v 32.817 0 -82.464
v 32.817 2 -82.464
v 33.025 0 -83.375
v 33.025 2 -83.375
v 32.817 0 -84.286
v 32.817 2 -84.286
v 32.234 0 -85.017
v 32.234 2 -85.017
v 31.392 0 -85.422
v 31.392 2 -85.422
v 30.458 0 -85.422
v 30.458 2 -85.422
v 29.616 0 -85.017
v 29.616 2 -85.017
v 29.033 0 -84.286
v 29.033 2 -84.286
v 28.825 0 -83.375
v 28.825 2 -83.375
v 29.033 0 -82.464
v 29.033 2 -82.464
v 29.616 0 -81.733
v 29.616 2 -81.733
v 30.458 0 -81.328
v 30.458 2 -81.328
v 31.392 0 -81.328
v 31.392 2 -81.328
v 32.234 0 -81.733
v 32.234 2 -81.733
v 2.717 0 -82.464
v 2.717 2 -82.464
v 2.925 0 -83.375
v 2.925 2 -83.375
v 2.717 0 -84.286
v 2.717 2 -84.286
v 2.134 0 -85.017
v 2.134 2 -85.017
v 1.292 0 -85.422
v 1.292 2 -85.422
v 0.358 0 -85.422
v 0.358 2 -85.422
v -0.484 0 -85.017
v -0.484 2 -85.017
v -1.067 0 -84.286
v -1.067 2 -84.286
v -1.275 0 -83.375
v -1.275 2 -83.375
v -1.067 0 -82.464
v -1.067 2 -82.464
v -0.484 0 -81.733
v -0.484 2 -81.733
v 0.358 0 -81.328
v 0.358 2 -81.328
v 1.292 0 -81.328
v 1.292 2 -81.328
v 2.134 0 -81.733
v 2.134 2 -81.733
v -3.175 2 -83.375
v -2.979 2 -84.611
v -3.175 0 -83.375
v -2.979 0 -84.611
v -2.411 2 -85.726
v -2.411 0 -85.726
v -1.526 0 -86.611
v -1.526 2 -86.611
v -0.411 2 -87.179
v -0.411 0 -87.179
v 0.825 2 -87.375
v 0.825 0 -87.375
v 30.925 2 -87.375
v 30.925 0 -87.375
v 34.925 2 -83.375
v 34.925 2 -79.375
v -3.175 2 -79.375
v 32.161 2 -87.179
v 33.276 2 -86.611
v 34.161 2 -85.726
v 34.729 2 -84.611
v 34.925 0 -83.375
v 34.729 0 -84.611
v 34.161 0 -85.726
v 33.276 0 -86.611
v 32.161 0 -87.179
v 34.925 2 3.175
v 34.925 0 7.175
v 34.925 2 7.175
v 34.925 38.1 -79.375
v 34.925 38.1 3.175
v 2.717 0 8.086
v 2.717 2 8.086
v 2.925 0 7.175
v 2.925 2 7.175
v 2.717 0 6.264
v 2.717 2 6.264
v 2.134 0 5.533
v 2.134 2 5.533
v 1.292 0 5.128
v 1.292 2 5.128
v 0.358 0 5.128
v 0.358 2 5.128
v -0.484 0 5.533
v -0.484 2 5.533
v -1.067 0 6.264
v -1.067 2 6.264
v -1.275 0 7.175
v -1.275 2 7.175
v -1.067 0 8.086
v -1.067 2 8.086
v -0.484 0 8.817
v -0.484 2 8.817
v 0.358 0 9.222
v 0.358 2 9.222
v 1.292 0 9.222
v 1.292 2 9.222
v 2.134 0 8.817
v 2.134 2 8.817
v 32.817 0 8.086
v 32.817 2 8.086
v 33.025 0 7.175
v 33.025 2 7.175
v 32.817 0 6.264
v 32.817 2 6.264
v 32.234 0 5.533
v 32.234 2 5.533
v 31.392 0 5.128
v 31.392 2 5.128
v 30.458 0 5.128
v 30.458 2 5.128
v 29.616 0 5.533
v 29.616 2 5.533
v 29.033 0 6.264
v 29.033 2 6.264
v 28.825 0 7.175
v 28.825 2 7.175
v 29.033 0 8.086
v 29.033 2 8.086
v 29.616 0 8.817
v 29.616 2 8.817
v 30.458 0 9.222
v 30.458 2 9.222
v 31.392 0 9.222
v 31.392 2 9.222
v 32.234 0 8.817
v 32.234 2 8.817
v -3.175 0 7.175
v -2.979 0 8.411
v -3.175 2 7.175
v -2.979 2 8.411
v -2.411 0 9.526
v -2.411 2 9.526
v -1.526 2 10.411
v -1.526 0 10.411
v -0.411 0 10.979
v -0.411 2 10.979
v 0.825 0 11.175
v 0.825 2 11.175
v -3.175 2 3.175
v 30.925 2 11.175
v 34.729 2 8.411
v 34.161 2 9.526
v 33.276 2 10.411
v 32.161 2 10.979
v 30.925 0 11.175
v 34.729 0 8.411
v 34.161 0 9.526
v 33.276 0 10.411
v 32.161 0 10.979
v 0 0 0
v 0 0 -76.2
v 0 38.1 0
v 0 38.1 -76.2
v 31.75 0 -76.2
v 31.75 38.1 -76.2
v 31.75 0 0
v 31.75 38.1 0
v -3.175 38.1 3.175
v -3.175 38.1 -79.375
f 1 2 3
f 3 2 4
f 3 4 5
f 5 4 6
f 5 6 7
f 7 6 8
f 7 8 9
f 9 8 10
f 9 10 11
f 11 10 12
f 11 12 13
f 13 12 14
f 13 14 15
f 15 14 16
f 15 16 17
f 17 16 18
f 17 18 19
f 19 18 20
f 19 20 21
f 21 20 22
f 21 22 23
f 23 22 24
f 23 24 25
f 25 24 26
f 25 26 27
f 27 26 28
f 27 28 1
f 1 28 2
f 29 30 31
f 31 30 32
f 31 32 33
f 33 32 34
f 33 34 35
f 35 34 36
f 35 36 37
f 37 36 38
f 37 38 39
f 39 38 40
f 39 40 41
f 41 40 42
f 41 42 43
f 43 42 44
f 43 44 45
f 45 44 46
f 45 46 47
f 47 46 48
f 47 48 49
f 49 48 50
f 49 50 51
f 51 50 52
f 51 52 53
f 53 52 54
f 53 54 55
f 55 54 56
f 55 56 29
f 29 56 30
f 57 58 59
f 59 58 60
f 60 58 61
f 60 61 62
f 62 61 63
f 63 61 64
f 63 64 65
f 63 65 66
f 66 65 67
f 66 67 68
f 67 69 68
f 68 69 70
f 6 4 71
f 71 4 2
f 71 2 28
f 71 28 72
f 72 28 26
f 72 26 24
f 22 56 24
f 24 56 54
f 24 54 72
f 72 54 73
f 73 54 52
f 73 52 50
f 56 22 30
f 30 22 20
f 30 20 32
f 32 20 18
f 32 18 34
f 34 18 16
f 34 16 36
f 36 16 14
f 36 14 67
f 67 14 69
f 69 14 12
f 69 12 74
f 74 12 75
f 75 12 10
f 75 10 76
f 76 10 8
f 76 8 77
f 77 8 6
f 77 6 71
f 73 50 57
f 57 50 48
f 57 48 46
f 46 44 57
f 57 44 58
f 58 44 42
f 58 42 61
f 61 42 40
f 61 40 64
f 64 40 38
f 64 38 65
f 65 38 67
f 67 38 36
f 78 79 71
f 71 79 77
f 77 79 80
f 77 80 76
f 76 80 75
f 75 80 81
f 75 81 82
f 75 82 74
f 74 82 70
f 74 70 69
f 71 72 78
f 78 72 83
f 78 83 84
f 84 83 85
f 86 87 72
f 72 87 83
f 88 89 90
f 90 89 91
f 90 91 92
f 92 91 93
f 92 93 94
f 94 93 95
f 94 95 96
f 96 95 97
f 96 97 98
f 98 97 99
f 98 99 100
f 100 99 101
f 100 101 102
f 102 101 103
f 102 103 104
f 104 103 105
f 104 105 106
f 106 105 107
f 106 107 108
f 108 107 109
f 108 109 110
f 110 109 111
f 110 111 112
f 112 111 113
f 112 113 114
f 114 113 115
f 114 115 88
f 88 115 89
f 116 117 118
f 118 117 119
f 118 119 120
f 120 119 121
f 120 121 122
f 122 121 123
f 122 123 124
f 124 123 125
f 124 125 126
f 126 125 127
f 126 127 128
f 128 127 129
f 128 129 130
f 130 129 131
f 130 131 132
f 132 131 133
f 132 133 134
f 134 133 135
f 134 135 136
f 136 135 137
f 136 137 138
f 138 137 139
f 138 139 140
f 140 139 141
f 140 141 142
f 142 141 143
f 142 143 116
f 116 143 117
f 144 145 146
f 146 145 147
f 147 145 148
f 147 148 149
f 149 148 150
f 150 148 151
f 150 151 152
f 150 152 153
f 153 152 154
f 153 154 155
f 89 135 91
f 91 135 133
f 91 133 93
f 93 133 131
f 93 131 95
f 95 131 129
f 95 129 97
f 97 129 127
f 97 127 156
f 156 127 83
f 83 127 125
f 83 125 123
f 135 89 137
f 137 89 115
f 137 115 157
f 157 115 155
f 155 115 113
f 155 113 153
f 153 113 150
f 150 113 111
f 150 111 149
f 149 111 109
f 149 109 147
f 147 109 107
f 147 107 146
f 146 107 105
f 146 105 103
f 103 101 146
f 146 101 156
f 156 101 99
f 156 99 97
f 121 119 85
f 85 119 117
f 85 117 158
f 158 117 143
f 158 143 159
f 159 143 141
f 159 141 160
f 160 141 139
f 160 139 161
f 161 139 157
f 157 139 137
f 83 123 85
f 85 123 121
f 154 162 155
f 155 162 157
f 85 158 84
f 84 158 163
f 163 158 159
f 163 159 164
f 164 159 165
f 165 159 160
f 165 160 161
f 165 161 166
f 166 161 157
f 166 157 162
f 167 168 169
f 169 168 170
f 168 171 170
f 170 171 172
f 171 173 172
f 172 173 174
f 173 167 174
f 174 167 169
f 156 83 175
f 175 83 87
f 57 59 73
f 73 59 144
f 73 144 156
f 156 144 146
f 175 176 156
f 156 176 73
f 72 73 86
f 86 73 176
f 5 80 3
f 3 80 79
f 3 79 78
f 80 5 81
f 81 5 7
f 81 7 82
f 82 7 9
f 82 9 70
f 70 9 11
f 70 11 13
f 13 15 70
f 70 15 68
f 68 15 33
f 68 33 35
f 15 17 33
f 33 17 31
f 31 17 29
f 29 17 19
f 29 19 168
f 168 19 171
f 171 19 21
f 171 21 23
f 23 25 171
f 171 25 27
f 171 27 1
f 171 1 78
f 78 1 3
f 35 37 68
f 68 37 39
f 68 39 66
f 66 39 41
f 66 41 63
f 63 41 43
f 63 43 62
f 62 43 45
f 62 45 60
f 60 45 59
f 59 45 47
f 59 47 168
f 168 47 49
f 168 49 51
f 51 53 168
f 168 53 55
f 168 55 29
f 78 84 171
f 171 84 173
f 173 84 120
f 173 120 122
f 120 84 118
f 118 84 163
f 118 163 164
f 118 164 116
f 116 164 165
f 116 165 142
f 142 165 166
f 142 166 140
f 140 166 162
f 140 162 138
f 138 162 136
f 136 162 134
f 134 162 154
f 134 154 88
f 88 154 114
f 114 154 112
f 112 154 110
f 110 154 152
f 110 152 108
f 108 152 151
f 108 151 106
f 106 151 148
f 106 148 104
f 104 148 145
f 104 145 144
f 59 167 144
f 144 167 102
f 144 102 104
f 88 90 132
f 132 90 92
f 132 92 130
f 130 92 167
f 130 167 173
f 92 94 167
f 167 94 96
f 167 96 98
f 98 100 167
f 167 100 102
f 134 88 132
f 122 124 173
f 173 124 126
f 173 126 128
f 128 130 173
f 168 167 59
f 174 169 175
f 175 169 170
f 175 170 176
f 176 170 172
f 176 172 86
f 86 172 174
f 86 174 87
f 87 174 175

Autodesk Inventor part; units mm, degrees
ref_plane "YZ Plane" through (0, 0, 0) normal (1, 0, 0) x (0, 1, 0)
ref_plane "XZ Plane" through (0, 0, 0) normal (0, 1, 0) x (-1, 0, 0)
ref_plane "XY Plane" through (0, 0, 0) normal (0, 0, 1) x (1, 0, 0)
sketch "Sketch1" plane through (0, 0, 0) normal (0, 1, 0) x (-1, 0, 0)
  line L0 (0, 0) -> (-31.75, 0)
  line L1 (-31.75, 0) -> (-31.75, -76.2)
  line L2 (-31.75, -76.2) -> (0, -76.2)
  line L3 (0, -76.2) -> (0, 0)
  line L4 (-34.925, -79.375) -> (-34.925, 3.175)
  line L5 (-34.925, 3.175) -> (3.175, 3.175)
  line L6 (3.175, 3.175) -> (3.175, -79.375)
  line L7 (3.175, -79.375) -> (-34.925, -79.375)
  dimension "d0" = 31.75
  dimension "d1" = 76.2
  dimension "d2" = 3.175
extrude "Extrusion1" add sketch "Sketch1" along normal blind 38.1
sketch "Sketch2" plane through (-3.175, 0, 3.175) normal (0, 0, 1) x (1, 0, 0)
  line L0 (38.1, 0) -> (38.1, 38.1) projected
  line L1 (0, 0) -> (38.1, 0)
  line L2 (38.1, 0) -> (38.1, 2)
  line L3 (38.1, 2) -> (0, 2)
  line L4 (0, 2) -> (0, 0)
  point P0 (3.175, 0)
  dimension "d5" = 2
extrude "Extrusion2" add sketch "Sketch2" along normal blind 8
fillet "Fillet1" radius 4 2 edges at (34.925, 1, 11.175) (-3.175, 1, 11.175)
sketch "Sketch3" plane through (-3.175, 2, 3.175) normal (0, 1, 0) x (1, 0, 0)
  arc A0 (0, -4) -> (4, -8) centre (4, -4) ccw projected
  circle A1 centre (4, -4) radius 2.1
  arc A2 (34.1, -8) -> (38.1, -4) centre (34.1, -4) ccw projected
  circle A3 centre (34.1, -4) radius 2.1
  point P0 (3.175, 3.175)
  dimension "d9" = 4.2
  dimension "d10" = 4.2
extrude "Extrusion3" cut sketch "Sketch3" against normal blind 8
sketch "Sketch4" plane through (34.925, 0, -79.375) normal (0, 0, -1) x (-1, 0, 0)
  line L0 (38.1, 2) -> (38.1, 0) projected
  line L1 (0, 0) -> (38.1, 0)
  line L2 (38.1, 0) -> (38.1, 2)
  line L3 (38.1, 2) -> (0, 2)
  line L4 (0, 2) -> (0, 0)
  point P0 (34.925, 0)
  dimension "d13" = 2
extrude "Extrusion4" add sketch "Sketch4" along normal blind 8
fillet "Fillet2" radius 4 2 edges at (34.925, 1, -87.375) (-3.175, 1, -87.375)
sketch "Sketch5" plane through (-3.175, 2, -79.375) normal (0, 1, 0) x (1, 0, 0)
  arc A0 (38.1, 4) -> (34.1, 8) centre (34.1, 4) ccw projected
  circle A1 centre (34.1, 4) radius 2.1
  arc A2 (4, 8) -> (0, 4) centre (4, 4) ccw projected
  circle A3 centre (4, 4) radius 2.1
  line L0 (4, 4) -> (0, 4)
  point P0 (3.175, -79.375)
  dimension "d17" = 4.2
  dimension "d18" = 4.2
extrude "Extrusion5" cut sketch "Sketch5" against normal blind 8
properties part number "BatteryHolder"
